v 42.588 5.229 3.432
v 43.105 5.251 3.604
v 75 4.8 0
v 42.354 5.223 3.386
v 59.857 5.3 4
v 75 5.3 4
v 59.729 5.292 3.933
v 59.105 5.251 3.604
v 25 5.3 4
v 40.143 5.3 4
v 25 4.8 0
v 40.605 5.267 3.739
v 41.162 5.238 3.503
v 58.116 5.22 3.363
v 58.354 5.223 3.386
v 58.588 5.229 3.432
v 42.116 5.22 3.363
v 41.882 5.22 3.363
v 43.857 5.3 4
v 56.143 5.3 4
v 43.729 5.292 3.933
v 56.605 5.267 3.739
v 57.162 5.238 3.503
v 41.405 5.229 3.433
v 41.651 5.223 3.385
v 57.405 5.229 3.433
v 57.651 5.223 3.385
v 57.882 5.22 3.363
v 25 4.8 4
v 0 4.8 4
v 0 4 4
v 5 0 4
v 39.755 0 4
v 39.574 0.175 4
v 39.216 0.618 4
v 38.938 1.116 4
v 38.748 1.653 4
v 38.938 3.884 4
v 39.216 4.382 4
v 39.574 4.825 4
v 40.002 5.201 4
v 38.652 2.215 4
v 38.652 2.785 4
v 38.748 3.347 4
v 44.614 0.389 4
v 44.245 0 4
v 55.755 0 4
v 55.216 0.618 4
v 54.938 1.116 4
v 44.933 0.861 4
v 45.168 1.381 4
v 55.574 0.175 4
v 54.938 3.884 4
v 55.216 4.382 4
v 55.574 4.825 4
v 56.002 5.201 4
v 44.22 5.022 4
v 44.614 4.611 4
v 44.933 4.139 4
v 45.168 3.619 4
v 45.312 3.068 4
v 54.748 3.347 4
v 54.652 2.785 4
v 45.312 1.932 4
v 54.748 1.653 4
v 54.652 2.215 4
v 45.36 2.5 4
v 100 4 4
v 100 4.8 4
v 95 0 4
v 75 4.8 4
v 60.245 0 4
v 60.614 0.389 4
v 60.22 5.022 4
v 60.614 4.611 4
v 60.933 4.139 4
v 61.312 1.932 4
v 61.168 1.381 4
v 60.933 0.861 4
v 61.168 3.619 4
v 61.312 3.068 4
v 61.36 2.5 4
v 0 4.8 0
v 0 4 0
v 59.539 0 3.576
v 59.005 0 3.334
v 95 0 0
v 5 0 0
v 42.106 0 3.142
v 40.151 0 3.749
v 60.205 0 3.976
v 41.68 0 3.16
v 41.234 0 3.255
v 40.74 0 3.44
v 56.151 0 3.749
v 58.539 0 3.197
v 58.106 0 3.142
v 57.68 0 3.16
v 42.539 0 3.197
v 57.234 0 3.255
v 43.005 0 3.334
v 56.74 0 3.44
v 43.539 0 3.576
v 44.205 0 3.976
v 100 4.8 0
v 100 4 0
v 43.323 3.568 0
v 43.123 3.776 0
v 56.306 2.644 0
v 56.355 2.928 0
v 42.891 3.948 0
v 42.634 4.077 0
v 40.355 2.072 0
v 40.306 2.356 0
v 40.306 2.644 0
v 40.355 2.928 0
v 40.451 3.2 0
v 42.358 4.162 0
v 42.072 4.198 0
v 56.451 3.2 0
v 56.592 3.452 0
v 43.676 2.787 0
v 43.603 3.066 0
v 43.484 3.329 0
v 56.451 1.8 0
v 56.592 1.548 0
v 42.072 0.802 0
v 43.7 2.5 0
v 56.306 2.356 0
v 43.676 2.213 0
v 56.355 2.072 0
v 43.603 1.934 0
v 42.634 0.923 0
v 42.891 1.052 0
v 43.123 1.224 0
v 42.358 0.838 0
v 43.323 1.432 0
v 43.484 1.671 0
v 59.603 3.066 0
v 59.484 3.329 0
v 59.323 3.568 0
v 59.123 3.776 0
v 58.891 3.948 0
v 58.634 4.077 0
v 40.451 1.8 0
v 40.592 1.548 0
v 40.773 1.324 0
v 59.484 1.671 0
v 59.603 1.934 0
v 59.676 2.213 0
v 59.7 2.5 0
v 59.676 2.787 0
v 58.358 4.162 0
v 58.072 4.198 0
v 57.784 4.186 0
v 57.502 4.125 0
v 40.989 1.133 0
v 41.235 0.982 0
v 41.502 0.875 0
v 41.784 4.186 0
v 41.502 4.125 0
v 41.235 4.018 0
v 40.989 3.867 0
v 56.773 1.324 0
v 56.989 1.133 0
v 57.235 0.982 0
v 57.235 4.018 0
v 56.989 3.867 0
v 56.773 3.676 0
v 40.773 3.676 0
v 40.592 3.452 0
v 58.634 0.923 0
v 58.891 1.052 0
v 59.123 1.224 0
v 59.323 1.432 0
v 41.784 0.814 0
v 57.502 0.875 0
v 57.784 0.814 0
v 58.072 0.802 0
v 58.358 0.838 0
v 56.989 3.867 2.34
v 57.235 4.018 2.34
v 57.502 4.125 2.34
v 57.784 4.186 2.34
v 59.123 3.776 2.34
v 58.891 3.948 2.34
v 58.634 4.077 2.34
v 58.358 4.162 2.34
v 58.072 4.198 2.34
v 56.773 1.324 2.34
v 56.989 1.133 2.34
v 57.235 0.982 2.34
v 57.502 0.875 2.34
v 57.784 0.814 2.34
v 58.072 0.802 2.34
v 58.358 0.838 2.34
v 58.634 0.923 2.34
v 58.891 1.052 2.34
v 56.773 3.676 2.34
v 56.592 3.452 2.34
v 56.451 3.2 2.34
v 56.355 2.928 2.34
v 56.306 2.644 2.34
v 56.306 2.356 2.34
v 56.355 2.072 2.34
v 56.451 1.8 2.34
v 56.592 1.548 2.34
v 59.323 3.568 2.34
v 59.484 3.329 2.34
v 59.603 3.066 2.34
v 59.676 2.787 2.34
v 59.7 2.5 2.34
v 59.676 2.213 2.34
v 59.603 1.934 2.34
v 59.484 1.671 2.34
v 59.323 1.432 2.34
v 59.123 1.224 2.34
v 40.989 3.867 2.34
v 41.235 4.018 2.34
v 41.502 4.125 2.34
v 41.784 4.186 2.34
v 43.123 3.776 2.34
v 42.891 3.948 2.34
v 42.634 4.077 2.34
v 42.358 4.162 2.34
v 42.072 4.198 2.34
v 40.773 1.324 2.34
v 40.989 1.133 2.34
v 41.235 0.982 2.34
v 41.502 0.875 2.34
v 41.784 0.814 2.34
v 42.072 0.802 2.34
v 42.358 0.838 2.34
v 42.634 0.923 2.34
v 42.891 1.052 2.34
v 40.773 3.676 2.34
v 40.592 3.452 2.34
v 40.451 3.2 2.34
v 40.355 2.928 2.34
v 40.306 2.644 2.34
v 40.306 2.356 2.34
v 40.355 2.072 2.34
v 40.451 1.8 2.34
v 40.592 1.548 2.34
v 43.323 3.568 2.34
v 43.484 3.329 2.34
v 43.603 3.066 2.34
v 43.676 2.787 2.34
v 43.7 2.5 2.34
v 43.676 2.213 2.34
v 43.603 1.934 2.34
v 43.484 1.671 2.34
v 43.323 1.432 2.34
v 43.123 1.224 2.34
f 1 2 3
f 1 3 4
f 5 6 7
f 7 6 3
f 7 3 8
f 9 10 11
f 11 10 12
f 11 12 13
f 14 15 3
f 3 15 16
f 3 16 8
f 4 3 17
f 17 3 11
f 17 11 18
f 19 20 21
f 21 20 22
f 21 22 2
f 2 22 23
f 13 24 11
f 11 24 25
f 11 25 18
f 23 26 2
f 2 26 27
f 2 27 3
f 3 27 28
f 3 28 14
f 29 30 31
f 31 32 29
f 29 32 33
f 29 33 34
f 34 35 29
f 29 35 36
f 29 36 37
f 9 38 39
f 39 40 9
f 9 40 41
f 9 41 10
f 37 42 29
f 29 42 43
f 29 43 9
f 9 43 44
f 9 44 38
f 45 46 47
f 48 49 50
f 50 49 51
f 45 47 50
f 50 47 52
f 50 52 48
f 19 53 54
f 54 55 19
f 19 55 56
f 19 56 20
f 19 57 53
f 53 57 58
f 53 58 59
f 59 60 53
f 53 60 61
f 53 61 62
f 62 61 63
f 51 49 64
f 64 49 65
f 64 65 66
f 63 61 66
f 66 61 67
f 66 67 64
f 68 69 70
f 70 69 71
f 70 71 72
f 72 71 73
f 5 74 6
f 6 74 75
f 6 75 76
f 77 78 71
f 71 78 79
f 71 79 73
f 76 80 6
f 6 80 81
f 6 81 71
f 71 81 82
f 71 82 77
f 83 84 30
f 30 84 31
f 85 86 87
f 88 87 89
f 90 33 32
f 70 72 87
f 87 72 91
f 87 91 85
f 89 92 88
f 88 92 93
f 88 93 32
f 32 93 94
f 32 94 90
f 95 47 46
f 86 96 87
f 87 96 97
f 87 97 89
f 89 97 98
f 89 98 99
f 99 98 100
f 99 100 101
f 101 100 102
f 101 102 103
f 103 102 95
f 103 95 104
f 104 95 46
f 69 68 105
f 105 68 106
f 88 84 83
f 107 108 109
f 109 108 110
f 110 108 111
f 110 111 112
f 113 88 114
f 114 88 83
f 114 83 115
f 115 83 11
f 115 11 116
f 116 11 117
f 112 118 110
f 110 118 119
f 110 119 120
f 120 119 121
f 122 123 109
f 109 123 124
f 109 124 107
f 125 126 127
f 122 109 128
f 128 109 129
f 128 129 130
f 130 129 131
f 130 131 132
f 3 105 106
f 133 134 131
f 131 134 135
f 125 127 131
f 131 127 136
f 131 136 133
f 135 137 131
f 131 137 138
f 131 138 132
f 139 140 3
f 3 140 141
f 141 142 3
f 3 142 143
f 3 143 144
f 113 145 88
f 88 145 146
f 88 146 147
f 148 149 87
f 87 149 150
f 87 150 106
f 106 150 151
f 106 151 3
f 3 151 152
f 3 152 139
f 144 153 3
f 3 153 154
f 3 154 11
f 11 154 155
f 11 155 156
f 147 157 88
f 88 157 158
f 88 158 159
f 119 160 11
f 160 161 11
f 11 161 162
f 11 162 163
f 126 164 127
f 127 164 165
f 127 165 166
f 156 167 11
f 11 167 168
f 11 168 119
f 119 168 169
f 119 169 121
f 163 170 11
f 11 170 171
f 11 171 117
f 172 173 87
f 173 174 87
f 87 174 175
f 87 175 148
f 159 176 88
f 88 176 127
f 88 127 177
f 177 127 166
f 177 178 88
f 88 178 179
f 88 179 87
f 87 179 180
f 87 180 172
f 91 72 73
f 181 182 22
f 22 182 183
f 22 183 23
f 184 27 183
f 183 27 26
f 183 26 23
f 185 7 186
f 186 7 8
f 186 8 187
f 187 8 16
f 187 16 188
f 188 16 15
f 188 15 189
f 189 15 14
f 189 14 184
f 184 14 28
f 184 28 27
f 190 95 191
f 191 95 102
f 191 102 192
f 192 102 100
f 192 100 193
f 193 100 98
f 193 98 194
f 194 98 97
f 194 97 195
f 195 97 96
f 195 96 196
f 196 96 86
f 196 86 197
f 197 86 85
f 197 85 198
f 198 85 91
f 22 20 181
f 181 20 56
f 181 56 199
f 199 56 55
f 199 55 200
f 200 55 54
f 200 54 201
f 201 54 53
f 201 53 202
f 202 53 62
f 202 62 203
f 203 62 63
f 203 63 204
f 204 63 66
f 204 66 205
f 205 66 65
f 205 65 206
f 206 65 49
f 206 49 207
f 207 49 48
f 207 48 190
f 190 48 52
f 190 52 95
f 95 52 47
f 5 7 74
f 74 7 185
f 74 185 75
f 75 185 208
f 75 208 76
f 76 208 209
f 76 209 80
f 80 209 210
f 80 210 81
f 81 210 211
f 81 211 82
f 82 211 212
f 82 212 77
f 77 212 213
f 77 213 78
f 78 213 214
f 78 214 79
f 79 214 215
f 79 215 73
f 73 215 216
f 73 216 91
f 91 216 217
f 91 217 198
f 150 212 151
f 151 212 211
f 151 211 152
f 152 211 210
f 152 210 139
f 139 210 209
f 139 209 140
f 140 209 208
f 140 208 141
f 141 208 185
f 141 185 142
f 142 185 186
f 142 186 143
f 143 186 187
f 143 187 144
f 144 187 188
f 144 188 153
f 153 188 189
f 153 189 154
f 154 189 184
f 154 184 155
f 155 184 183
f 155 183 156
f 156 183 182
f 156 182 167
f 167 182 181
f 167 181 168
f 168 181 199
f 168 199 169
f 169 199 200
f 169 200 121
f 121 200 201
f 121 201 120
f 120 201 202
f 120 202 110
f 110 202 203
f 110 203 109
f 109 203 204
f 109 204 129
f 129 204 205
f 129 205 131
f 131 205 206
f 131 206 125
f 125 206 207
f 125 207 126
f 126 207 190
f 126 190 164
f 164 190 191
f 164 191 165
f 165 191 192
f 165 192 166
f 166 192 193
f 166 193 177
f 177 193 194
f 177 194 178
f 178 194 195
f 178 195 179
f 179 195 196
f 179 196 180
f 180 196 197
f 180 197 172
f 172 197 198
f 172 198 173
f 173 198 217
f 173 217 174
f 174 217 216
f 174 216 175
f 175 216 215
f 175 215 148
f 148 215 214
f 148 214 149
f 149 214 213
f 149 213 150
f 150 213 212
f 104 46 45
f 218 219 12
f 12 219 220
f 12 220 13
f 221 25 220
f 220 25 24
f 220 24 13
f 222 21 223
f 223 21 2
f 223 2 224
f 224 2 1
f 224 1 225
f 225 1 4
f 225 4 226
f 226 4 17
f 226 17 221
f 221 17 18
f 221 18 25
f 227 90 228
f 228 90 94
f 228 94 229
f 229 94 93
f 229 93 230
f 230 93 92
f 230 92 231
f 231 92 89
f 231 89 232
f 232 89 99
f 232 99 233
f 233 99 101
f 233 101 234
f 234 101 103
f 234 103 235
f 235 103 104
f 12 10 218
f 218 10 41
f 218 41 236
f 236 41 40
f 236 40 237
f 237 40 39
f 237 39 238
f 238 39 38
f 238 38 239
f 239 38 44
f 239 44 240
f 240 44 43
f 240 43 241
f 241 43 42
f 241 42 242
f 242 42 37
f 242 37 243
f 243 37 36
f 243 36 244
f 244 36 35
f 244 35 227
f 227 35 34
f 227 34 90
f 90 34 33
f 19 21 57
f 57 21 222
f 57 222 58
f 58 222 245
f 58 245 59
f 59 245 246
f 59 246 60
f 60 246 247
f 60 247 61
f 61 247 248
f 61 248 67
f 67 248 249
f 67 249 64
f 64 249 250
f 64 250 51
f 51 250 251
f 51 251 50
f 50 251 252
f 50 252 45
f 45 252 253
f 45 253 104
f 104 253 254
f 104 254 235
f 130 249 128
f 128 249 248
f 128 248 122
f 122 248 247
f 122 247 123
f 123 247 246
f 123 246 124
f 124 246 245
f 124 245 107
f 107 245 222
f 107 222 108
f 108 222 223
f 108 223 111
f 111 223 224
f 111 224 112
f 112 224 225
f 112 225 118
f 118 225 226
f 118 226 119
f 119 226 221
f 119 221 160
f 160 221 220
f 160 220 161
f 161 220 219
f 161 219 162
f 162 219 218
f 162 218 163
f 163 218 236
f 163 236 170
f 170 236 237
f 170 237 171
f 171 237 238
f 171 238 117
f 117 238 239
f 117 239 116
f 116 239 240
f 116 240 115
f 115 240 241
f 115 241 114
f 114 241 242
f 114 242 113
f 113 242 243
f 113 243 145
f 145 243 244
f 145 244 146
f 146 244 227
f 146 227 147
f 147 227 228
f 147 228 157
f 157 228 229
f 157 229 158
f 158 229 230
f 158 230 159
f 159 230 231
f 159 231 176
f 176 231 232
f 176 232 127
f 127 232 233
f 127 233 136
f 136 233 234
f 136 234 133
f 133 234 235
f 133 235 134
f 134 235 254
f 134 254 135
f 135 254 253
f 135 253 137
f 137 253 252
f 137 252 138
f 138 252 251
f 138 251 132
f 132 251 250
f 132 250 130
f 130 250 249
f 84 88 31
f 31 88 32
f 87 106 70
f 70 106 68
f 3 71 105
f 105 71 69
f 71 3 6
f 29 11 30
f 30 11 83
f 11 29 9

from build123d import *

# Parameters (mm, degrees)
SKETCH_1_W                   = 100
SKETCH_1_H                   = 5.3
EXTRUDE_1_DEPTH              = 4
CUT_EXTRUDE_1_DEPTH          = 101.220207543
SKETCH_3_R                   = 1.5
CUT_EXTRUDE_2_DEPTH          = 101.220207543
HOLE_WIZARD_M3_1_D           = 3.4
HOLE_WIZARD_M3_1_CSINK_D     = 6.72
HOLE_WIZARD_M3_1_CSINK_ANGLE = 90
CUT_EXTRUDE_3_DEPTH          = 101.220207543
CUT_EXTRUDE_4_DEPTH          = 25
CUT_EXTRUDE_5_DEPTH          = 25


with BuildPart() as part:
    # 草图1 → 凸台-拉伸1 (new body)
    with BuildSketch(Plane.XY):
        with Locations((50, 2.65)):
            Rectangle(SKETCH_1_W, SKETCH_1_H)
    extrude(amount=EXTRUDE_1_DEPTH)

    # 草图2 → 切除-拉伸1 (cut, through all)
    with BuildSketch(Plane(origin=(100, 0, 0), x_dir=(0, 0, -1), z_dir=(1, 0, 0))):
        Polygon((-4, 5.3), (0, 5.3), (0, 4.8), align=None)
    extrude(amount=-CUT_EXTRUDE_1_DEPTH, mode=Mode.SUBTRACT)

    # 草图3 → 切除-拉伸2 (cut, through all)
    with BuildSketch(Plane.XY.offset(4)):
        with Locations((42, 2.5)):
            Circle(SKETCH_3_R)
        with Locations(Location((58, 2.5, 0), (0, 0, 180))):
            Circle(SKETCH_3_R)
    extrude(amount=-CUT_EXTRUDE_2_DEPTH, mode=Mode.SUBTRACT)

    # M3 六角凹锥坑螺钉的锥形沉头孔1 (through all)
    with Locations(Plane(origin=(42, 2.5, 4), x_dir=(1, 0, 0), z_dir=(0, 0, 1))):
        with Locations((0, 0), (16, 0)):
            CounterSinkHole(HOLE_WIZARD_M3_1_D / 2, HOLE_WIZARD_M3_1_CSINK_D / 2, counter_sink_angle=HOLE_WIZARD_M3_1_CSINK_ANGLE)

    # 草图6 → 切除-拉伸3 (cut, through all)
    with BuildSketch(Plane.XY.offset(4)):
        Polygon((0, 4), (5, 0), (0, 0), align=None)
        Polygon((100, 0), (100, 4), (95, 0), align=None)
    extrude(amount=-CUT_EXTRUDE_3_DEPTH, mode=Mode.SUBTRACT)

    # 草图7 → 切除-拉伸4 (cut)
    with BuildSketch(Plane(origin=(100, 0, 0), x_dir=(0, 0, -1), z_dir=(1, 0, 0))):
        Polygon((-4, 5.3), (0, 4.8), (-4, 4.8), align=None)
    extrude(amount=-CUT_EXTRUDE_4_DEPTH, mode=Mode.SUBTRACT)

    # 草图8 → 切除-拉伸5 (cut)
    with BuildSketch(Plane.ZY):
        Polygon((0, 4.8), (4, 4.8), (4, 5.3), align=None)
    extrude(amount=-CUT_EXTRUDE_5_DEPTH, mode=Mode.SUBTRACT)


solid = part.part
